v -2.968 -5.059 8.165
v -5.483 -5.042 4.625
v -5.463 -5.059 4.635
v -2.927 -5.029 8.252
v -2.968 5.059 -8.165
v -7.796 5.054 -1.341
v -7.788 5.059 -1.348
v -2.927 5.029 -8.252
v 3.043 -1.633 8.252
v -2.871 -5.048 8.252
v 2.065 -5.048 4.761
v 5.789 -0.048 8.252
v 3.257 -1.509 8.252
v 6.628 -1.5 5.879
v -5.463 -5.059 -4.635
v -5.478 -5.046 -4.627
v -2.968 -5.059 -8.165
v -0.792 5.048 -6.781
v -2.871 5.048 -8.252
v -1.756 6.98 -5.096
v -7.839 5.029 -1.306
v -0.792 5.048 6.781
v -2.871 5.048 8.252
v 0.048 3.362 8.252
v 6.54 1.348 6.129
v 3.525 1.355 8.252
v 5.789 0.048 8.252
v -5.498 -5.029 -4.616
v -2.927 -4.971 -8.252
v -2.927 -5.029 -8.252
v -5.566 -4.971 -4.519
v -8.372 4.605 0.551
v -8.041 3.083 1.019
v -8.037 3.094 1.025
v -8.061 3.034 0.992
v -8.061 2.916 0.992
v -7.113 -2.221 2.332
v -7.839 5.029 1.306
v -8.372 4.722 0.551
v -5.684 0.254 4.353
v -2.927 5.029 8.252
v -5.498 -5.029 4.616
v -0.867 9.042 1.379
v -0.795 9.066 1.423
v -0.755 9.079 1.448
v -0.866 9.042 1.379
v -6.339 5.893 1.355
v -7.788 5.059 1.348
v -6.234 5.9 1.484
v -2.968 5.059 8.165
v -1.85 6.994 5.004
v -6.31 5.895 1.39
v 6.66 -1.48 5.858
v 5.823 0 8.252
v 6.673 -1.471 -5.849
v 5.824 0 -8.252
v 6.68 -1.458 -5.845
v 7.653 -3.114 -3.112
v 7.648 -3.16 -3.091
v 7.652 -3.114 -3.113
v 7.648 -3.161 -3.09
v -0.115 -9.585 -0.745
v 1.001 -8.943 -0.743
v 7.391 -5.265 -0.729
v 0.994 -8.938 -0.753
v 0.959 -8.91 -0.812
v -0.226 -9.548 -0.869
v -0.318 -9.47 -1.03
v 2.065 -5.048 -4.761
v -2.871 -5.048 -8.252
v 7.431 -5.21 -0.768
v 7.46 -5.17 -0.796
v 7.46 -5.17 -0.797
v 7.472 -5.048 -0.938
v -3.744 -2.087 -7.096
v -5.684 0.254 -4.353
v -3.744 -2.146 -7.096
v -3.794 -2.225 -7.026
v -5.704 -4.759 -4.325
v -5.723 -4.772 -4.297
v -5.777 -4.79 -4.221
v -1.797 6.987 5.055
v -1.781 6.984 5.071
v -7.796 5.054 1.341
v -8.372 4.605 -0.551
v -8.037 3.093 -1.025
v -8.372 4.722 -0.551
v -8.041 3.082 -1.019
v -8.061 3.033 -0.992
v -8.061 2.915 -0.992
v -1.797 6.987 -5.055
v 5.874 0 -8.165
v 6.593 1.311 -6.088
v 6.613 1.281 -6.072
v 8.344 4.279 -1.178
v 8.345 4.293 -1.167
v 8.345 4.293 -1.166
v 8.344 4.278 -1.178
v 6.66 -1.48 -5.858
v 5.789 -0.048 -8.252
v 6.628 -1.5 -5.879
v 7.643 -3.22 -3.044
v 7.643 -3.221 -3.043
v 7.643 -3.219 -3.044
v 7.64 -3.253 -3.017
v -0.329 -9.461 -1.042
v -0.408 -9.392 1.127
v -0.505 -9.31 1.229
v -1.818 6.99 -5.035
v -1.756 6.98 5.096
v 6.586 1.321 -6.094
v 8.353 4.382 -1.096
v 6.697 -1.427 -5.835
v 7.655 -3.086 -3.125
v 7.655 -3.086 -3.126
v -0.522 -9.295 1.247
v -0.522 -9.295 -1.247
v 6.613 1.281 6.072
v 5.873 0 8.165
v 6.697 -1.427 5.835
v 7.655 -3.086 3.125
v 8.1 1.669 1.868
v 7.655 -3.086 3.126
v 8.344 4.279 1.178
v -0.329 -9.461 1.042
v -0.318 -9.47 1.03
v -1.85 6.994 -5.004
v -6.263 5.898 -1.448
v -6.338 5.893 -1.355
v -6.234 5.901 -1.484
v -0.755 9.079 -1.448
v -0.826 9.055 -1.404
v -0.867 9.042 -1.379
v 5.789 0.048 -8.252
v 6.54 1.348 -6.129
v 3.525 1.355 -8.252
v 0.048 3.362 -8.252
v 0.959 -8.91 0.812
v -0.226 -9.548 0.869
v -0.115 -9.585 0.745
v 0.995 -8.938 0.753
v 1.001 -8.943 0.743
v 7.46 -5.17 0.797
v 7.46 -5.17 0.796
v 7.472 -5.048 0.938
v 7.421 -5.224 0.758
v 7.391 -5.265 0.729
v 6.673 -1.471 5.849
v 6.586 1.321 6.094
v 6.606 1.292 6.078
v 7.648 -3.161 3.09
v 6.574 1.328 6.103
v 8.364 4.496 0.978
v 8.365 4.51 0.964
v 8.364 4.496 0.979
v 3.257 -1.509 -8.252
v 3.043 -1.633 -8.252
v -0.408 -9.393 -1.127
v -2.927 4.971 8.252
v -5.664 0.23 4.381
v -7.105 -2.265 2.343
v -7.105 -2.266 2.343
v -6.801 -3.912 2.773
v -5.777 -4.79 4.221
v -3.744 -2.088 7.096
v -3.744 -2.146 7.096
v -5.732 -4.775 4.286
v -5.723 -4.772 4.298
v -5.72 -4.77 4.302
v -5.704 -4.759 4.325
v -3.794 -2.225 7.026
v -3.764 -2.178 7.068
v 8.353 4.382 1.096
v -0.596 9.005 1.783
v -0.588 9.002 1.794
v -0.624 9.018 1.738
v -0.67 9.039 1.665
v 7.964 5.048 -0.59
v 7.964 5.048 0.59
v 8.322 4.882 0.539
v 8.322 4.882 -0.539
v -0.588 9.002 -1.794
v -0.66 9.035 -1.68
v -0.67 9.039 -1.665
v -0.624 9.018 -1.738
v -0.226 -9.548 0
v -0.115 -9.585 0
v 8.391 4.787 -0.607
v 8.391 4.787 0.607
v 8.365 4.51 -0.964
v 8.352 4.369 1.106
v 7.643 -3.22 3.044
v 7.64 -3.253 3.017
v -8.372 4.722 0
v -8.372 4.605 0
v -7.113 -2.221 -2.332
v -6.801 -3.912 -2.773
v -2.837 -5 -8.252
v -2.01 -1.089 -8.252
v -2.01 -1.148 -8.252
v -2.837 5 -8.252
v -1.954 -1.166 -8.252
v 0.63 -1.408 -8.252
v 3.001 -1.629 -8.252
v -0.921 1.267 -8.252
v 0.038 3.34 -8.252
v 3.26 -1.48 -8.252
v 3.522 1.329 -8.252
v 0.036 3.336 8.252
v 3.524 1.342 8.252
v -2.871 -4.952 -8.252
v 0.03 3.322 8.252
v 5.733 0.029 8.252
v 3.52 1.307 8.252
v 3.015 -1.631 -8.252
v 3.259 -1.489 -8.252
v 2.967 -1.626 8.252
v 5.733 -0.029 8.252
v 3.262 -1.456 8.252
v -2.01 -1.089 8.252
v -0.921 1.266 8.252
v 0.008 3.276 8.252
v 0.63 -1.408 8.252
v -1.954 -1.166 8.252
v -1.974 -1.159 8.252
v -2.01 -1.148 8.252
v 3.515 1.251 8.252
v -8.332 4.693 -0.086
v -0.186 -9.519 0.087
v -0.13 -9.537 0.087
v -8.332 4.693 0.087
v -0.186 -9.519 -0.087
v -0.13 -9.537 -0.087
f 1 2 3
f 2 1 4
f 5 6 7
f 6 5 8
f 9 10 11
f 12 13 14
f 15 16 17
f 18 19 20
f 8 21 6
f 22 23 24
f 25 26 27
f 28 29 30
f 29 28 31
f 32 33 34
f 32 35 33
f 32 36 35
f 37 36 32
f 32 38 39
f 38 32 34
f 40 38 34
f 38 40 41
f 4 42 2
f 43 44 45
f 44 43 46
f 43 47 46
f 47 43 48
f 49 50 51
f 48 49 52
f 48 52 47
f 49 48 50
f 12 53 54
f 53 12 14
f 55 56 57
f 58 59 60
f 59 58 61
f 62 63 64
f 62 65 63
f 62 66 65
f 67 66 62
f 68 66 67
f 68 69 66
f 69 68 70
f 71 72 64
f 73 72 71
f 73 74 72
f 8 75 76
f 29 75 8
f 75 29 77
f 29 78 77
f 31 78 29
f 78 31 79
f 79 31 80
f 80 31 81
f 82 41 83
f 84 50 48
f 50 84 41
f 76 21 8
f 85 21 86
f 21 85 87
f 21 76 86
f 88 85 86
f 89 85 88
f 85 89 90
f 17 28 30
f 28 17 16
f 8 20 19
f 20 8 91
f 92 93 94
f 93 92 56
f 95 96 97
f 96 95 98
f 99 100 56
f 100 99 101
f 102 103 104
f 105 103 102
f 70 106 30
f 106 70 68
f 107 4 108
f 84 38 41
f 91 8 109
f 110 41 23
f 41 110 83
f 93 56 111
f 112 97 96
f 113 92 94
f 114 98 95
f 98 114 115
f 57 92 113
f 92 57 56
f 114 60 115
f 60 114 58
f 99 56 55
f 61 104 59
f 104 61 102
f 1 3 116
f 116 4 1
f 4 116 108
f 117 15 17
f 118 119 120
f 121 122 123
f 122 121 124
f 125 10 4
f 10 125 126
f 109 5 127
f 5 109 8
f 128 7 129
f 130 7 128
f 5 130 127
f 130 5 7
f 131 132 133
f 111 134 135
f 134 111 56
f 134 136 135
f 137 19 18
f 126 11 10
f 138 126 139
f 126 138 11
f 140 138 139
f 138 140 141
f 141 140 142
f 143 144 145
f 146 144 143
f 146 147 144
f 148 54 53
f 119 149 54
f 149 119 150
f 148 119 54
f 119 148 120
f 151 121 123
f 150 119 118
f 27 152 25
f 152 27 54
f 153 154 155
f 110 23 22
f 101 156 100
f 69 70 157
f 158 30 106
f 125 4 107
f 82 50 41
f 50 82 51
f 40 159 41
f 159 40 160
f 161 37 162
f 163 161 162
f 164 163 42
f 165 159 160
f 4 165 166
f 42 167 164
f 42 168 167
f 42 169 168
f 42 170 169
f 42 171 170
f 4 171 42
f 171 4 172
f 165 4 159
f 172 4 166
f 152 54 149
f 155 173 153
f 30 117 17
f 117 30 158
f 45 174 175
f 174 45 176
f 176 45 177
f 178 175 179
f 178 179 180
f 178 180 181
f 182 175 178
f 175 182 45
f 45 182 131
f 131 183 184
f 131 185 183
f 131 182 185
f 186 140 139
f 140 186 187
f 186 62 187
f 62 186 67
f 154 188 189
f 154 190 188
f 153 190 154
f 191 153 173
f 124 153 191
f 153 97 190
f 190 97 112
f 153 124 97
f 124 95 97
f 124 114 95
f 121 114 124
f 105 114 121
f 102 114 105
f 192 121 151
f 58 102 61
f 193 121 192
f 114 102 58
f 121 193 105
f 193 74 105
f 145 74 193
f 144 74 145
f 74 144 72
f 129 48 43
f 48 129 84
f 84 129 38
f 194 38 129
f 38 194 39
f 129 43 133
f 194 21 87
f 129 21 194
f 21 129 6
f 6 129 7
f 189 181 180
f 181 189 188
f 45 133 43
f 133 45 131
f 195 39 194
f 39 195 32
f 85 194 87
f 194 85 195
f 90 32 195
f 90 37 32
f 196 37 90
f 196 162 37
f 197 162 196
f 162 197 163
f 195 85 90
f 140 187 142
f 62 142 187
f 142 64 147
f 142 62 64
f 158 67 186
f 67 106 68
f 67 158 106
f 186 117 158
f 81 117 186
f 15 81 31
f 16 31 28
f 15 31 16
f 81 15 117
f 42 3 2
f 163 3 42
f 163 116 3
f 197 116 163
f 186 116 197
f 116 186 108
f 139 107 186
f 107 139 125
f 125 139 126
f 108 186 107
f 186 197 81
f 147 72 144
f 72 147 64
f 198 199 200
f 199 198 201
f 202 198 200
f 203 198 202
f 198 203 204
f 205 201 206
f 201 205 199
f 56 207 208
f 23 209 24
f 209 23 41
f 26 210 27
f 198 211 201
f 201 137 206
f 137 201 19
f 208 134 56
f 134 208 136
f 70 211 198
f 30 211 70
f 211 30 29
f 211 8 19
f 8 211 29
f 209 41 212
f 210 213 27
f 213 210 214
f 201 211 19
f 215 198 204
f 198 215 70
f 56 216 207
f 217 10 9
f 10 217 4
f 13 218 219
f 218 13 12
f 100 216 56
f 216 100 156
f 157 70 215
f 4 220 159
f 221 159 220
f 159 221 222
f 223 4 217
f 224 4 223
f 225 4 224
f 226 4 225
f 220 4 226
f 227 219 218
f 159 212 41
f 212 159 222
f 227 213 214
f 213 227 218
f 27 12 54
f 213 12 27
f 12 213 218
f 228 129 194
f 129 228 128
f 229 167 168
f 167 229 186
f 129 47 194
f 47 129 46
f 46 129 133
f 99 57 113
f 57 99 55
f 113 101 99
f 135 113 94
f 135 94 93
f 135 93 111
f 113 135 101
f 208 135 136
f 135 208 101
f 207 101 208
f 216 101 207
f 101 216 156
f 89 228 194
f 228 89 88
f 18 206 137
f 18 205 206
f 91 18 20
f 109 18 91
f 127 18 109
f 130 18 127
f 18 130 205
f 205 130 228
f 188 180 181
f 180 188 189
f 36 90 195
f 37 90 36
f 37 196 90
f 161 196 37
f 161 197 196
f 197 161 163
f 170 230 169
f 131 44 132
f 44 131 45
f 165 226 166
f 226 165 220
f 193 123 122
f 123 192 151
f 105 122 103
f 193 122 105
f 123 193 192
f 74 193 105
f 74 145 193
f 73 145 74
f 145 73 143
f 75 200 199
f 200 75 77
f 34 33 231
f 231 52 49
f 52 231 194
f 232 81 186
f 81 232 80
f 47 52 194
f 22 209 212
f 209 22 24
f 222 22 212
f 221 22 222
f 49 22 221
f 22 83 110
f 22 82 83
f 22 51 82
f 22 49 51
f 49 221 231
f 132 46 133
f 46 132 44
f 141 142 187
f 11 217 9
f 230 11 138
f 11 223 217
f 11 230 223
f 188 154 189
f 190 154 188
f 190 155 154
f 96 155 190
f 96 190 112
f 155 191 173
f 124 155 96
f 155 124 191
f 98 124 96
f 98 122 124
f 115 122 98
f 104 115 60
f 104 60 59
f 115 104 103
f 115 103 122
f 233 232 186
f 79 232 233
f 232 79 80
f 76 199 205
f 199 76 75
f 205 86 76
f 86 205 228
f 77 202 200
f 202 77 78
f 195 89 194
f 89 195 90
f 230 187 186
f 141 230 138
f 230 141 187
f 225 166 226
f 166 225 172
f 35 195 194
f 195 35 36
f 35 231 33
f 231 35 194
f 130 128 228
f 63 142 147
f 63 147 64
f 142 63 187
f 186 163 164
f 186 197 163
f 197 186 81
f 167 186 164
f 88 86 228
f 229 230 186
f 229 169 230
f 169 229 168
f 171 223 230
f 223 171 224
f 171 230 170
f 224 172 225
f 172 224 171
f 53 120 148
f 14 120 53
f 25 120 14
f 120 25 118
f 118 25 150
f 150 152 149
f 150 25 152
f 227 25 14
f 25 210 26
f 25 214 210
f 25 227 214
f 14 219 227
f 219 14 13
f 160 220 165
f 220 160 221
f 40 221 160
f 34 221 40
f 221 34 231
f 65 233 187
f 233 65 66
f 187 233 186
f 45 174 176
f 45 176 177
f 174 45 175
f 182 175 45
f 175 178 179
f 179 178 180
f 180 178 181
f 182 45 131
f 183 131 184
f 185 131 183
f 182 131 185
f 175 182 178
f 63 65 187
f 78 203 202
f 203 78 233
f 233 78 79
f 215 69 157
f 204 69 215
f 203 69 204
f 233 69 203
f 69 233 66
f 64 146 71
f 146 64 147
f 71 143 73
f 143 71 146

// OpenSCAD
// Auto-generated OpenSCAD file

    inner_points = 10*[[-0.8291415458319079, 0.4663499702585989, 2.058495952064754e-05], [-0.07855180895714171, 0.8983503547280824, 0.5000112995897901], [-0.078569895871595, 0.898360286145608, -0.4999887001973251], [0.7360452910153114, -0.5169581736692761, 0.4999825100217997], [-0.6720275168609681, -0.3853110430415919, 0.5000092851568458], [0.8291157830596579, 0.4787095887324264, -0.5000092851568458], [-0.014544445859454913, -0.9489585581387598, -8.204608469786212e-06], [0.07856222001379826, 0.04668934142789162, 0.9999999997871154], [0.07852604618489165, 0.046709204262942824, -0.9999999997871154], [0.7360272041008581, -0.5169482422517505, -0.5000174897653156], [-0.6720456037754214, -0.38530111162406633, -0.4999907146302695], [0.8291338699741113, 0.47869965731490083, 0.4999907146302695]];

    outer_points = 10*[[-0.2886740751691849, -0.49999976883649444, -0.8164970970485246], [-0.2886739150147398, 0.500000231163467, -0.8164968705552657], [0.5773514086916217, 9.246539450780134e-08, -0.8164957751769395], [-0.2886761940198712, 0.49999986130188906, 0.8164962912985543], [-0.8660254838608068, -0.49999986130188906, -1.3218715850804585e-06], [0.8660254838608068, 0.49999986130188906, 1.3218715850804585e-06], [-0.2886763541743163, -0.5000001386980726, 0.8164960648052954], [-0.8660253237063618, 0.5000001386980726, -1.0953783261546945e-06], [0.8660253237063618, -0.5000001386980726, 1.0953783261546945e-06], [0.5773491296864904, -2.77396183523404e-07, 0.8164973866768803], [-1.6015444513559745e-07, -0.9999999999999616, -2.2649325892100838e-07], [1.6015444513559745e-07, 0.9999999999999616, 2.2649325892100838e-07]];

    // Convex hull for inner set (I)
    module inner_hull() {
        hull() {
            for (p = inner_points) {
                translate(p) sphere(r=0.1);
            }
        }
    }

    // Convex hull for outer set (O) minus inner hull (O \ I)
    module outer_minus_inner() {
        difference() {
            hull() {
                for (p = outer_points) {
                    translate(p) sphere(r=0.1);
                }
            }
            inner_hull(); // Subtract inner hull
        }
    }

    // Convex hull for outer set (O) minus all translated inner hulls
    module outer_minus_AllTranslationInner() {
        difference() {
            hull() {
                for (p = outer_points) {
                    translate(p) sphere(r=0.1);
                }
            }
            hull() {
                translate([0,0,50]) inner_hull();
                translate([0,0,-50]) inner_hull();
            }; // Subtract translated inner hulls
        }
    }

    // Difference between outer_minus_inner and outer_minus_AllTranslationInner
    module outer_minus_inner_diff() {
        difference() {
            // Outer minus inner
            difference() {
                hull() {
                    for (p = outer_points) {
                        translate(p) sphere(r=0.1);
                    }
                }
                inner_hull();
            }

            // Subtract Outer minus AllTranslationInner
            difference() {
                hull() {
                    for (p = outer_points) {
                        translate(p) sphere(r=0.1);
                    }
                }
                hull() {
                    translate([0,0,50]) inner_hull();
                    translate([0,0,-50]) inner_hull();
                };
            }
        }
    }

    // Rendering all with colors applied
    color([1, 1, 0, 1]) outer_minus_inner_diff(); // Opaque yellow
    
